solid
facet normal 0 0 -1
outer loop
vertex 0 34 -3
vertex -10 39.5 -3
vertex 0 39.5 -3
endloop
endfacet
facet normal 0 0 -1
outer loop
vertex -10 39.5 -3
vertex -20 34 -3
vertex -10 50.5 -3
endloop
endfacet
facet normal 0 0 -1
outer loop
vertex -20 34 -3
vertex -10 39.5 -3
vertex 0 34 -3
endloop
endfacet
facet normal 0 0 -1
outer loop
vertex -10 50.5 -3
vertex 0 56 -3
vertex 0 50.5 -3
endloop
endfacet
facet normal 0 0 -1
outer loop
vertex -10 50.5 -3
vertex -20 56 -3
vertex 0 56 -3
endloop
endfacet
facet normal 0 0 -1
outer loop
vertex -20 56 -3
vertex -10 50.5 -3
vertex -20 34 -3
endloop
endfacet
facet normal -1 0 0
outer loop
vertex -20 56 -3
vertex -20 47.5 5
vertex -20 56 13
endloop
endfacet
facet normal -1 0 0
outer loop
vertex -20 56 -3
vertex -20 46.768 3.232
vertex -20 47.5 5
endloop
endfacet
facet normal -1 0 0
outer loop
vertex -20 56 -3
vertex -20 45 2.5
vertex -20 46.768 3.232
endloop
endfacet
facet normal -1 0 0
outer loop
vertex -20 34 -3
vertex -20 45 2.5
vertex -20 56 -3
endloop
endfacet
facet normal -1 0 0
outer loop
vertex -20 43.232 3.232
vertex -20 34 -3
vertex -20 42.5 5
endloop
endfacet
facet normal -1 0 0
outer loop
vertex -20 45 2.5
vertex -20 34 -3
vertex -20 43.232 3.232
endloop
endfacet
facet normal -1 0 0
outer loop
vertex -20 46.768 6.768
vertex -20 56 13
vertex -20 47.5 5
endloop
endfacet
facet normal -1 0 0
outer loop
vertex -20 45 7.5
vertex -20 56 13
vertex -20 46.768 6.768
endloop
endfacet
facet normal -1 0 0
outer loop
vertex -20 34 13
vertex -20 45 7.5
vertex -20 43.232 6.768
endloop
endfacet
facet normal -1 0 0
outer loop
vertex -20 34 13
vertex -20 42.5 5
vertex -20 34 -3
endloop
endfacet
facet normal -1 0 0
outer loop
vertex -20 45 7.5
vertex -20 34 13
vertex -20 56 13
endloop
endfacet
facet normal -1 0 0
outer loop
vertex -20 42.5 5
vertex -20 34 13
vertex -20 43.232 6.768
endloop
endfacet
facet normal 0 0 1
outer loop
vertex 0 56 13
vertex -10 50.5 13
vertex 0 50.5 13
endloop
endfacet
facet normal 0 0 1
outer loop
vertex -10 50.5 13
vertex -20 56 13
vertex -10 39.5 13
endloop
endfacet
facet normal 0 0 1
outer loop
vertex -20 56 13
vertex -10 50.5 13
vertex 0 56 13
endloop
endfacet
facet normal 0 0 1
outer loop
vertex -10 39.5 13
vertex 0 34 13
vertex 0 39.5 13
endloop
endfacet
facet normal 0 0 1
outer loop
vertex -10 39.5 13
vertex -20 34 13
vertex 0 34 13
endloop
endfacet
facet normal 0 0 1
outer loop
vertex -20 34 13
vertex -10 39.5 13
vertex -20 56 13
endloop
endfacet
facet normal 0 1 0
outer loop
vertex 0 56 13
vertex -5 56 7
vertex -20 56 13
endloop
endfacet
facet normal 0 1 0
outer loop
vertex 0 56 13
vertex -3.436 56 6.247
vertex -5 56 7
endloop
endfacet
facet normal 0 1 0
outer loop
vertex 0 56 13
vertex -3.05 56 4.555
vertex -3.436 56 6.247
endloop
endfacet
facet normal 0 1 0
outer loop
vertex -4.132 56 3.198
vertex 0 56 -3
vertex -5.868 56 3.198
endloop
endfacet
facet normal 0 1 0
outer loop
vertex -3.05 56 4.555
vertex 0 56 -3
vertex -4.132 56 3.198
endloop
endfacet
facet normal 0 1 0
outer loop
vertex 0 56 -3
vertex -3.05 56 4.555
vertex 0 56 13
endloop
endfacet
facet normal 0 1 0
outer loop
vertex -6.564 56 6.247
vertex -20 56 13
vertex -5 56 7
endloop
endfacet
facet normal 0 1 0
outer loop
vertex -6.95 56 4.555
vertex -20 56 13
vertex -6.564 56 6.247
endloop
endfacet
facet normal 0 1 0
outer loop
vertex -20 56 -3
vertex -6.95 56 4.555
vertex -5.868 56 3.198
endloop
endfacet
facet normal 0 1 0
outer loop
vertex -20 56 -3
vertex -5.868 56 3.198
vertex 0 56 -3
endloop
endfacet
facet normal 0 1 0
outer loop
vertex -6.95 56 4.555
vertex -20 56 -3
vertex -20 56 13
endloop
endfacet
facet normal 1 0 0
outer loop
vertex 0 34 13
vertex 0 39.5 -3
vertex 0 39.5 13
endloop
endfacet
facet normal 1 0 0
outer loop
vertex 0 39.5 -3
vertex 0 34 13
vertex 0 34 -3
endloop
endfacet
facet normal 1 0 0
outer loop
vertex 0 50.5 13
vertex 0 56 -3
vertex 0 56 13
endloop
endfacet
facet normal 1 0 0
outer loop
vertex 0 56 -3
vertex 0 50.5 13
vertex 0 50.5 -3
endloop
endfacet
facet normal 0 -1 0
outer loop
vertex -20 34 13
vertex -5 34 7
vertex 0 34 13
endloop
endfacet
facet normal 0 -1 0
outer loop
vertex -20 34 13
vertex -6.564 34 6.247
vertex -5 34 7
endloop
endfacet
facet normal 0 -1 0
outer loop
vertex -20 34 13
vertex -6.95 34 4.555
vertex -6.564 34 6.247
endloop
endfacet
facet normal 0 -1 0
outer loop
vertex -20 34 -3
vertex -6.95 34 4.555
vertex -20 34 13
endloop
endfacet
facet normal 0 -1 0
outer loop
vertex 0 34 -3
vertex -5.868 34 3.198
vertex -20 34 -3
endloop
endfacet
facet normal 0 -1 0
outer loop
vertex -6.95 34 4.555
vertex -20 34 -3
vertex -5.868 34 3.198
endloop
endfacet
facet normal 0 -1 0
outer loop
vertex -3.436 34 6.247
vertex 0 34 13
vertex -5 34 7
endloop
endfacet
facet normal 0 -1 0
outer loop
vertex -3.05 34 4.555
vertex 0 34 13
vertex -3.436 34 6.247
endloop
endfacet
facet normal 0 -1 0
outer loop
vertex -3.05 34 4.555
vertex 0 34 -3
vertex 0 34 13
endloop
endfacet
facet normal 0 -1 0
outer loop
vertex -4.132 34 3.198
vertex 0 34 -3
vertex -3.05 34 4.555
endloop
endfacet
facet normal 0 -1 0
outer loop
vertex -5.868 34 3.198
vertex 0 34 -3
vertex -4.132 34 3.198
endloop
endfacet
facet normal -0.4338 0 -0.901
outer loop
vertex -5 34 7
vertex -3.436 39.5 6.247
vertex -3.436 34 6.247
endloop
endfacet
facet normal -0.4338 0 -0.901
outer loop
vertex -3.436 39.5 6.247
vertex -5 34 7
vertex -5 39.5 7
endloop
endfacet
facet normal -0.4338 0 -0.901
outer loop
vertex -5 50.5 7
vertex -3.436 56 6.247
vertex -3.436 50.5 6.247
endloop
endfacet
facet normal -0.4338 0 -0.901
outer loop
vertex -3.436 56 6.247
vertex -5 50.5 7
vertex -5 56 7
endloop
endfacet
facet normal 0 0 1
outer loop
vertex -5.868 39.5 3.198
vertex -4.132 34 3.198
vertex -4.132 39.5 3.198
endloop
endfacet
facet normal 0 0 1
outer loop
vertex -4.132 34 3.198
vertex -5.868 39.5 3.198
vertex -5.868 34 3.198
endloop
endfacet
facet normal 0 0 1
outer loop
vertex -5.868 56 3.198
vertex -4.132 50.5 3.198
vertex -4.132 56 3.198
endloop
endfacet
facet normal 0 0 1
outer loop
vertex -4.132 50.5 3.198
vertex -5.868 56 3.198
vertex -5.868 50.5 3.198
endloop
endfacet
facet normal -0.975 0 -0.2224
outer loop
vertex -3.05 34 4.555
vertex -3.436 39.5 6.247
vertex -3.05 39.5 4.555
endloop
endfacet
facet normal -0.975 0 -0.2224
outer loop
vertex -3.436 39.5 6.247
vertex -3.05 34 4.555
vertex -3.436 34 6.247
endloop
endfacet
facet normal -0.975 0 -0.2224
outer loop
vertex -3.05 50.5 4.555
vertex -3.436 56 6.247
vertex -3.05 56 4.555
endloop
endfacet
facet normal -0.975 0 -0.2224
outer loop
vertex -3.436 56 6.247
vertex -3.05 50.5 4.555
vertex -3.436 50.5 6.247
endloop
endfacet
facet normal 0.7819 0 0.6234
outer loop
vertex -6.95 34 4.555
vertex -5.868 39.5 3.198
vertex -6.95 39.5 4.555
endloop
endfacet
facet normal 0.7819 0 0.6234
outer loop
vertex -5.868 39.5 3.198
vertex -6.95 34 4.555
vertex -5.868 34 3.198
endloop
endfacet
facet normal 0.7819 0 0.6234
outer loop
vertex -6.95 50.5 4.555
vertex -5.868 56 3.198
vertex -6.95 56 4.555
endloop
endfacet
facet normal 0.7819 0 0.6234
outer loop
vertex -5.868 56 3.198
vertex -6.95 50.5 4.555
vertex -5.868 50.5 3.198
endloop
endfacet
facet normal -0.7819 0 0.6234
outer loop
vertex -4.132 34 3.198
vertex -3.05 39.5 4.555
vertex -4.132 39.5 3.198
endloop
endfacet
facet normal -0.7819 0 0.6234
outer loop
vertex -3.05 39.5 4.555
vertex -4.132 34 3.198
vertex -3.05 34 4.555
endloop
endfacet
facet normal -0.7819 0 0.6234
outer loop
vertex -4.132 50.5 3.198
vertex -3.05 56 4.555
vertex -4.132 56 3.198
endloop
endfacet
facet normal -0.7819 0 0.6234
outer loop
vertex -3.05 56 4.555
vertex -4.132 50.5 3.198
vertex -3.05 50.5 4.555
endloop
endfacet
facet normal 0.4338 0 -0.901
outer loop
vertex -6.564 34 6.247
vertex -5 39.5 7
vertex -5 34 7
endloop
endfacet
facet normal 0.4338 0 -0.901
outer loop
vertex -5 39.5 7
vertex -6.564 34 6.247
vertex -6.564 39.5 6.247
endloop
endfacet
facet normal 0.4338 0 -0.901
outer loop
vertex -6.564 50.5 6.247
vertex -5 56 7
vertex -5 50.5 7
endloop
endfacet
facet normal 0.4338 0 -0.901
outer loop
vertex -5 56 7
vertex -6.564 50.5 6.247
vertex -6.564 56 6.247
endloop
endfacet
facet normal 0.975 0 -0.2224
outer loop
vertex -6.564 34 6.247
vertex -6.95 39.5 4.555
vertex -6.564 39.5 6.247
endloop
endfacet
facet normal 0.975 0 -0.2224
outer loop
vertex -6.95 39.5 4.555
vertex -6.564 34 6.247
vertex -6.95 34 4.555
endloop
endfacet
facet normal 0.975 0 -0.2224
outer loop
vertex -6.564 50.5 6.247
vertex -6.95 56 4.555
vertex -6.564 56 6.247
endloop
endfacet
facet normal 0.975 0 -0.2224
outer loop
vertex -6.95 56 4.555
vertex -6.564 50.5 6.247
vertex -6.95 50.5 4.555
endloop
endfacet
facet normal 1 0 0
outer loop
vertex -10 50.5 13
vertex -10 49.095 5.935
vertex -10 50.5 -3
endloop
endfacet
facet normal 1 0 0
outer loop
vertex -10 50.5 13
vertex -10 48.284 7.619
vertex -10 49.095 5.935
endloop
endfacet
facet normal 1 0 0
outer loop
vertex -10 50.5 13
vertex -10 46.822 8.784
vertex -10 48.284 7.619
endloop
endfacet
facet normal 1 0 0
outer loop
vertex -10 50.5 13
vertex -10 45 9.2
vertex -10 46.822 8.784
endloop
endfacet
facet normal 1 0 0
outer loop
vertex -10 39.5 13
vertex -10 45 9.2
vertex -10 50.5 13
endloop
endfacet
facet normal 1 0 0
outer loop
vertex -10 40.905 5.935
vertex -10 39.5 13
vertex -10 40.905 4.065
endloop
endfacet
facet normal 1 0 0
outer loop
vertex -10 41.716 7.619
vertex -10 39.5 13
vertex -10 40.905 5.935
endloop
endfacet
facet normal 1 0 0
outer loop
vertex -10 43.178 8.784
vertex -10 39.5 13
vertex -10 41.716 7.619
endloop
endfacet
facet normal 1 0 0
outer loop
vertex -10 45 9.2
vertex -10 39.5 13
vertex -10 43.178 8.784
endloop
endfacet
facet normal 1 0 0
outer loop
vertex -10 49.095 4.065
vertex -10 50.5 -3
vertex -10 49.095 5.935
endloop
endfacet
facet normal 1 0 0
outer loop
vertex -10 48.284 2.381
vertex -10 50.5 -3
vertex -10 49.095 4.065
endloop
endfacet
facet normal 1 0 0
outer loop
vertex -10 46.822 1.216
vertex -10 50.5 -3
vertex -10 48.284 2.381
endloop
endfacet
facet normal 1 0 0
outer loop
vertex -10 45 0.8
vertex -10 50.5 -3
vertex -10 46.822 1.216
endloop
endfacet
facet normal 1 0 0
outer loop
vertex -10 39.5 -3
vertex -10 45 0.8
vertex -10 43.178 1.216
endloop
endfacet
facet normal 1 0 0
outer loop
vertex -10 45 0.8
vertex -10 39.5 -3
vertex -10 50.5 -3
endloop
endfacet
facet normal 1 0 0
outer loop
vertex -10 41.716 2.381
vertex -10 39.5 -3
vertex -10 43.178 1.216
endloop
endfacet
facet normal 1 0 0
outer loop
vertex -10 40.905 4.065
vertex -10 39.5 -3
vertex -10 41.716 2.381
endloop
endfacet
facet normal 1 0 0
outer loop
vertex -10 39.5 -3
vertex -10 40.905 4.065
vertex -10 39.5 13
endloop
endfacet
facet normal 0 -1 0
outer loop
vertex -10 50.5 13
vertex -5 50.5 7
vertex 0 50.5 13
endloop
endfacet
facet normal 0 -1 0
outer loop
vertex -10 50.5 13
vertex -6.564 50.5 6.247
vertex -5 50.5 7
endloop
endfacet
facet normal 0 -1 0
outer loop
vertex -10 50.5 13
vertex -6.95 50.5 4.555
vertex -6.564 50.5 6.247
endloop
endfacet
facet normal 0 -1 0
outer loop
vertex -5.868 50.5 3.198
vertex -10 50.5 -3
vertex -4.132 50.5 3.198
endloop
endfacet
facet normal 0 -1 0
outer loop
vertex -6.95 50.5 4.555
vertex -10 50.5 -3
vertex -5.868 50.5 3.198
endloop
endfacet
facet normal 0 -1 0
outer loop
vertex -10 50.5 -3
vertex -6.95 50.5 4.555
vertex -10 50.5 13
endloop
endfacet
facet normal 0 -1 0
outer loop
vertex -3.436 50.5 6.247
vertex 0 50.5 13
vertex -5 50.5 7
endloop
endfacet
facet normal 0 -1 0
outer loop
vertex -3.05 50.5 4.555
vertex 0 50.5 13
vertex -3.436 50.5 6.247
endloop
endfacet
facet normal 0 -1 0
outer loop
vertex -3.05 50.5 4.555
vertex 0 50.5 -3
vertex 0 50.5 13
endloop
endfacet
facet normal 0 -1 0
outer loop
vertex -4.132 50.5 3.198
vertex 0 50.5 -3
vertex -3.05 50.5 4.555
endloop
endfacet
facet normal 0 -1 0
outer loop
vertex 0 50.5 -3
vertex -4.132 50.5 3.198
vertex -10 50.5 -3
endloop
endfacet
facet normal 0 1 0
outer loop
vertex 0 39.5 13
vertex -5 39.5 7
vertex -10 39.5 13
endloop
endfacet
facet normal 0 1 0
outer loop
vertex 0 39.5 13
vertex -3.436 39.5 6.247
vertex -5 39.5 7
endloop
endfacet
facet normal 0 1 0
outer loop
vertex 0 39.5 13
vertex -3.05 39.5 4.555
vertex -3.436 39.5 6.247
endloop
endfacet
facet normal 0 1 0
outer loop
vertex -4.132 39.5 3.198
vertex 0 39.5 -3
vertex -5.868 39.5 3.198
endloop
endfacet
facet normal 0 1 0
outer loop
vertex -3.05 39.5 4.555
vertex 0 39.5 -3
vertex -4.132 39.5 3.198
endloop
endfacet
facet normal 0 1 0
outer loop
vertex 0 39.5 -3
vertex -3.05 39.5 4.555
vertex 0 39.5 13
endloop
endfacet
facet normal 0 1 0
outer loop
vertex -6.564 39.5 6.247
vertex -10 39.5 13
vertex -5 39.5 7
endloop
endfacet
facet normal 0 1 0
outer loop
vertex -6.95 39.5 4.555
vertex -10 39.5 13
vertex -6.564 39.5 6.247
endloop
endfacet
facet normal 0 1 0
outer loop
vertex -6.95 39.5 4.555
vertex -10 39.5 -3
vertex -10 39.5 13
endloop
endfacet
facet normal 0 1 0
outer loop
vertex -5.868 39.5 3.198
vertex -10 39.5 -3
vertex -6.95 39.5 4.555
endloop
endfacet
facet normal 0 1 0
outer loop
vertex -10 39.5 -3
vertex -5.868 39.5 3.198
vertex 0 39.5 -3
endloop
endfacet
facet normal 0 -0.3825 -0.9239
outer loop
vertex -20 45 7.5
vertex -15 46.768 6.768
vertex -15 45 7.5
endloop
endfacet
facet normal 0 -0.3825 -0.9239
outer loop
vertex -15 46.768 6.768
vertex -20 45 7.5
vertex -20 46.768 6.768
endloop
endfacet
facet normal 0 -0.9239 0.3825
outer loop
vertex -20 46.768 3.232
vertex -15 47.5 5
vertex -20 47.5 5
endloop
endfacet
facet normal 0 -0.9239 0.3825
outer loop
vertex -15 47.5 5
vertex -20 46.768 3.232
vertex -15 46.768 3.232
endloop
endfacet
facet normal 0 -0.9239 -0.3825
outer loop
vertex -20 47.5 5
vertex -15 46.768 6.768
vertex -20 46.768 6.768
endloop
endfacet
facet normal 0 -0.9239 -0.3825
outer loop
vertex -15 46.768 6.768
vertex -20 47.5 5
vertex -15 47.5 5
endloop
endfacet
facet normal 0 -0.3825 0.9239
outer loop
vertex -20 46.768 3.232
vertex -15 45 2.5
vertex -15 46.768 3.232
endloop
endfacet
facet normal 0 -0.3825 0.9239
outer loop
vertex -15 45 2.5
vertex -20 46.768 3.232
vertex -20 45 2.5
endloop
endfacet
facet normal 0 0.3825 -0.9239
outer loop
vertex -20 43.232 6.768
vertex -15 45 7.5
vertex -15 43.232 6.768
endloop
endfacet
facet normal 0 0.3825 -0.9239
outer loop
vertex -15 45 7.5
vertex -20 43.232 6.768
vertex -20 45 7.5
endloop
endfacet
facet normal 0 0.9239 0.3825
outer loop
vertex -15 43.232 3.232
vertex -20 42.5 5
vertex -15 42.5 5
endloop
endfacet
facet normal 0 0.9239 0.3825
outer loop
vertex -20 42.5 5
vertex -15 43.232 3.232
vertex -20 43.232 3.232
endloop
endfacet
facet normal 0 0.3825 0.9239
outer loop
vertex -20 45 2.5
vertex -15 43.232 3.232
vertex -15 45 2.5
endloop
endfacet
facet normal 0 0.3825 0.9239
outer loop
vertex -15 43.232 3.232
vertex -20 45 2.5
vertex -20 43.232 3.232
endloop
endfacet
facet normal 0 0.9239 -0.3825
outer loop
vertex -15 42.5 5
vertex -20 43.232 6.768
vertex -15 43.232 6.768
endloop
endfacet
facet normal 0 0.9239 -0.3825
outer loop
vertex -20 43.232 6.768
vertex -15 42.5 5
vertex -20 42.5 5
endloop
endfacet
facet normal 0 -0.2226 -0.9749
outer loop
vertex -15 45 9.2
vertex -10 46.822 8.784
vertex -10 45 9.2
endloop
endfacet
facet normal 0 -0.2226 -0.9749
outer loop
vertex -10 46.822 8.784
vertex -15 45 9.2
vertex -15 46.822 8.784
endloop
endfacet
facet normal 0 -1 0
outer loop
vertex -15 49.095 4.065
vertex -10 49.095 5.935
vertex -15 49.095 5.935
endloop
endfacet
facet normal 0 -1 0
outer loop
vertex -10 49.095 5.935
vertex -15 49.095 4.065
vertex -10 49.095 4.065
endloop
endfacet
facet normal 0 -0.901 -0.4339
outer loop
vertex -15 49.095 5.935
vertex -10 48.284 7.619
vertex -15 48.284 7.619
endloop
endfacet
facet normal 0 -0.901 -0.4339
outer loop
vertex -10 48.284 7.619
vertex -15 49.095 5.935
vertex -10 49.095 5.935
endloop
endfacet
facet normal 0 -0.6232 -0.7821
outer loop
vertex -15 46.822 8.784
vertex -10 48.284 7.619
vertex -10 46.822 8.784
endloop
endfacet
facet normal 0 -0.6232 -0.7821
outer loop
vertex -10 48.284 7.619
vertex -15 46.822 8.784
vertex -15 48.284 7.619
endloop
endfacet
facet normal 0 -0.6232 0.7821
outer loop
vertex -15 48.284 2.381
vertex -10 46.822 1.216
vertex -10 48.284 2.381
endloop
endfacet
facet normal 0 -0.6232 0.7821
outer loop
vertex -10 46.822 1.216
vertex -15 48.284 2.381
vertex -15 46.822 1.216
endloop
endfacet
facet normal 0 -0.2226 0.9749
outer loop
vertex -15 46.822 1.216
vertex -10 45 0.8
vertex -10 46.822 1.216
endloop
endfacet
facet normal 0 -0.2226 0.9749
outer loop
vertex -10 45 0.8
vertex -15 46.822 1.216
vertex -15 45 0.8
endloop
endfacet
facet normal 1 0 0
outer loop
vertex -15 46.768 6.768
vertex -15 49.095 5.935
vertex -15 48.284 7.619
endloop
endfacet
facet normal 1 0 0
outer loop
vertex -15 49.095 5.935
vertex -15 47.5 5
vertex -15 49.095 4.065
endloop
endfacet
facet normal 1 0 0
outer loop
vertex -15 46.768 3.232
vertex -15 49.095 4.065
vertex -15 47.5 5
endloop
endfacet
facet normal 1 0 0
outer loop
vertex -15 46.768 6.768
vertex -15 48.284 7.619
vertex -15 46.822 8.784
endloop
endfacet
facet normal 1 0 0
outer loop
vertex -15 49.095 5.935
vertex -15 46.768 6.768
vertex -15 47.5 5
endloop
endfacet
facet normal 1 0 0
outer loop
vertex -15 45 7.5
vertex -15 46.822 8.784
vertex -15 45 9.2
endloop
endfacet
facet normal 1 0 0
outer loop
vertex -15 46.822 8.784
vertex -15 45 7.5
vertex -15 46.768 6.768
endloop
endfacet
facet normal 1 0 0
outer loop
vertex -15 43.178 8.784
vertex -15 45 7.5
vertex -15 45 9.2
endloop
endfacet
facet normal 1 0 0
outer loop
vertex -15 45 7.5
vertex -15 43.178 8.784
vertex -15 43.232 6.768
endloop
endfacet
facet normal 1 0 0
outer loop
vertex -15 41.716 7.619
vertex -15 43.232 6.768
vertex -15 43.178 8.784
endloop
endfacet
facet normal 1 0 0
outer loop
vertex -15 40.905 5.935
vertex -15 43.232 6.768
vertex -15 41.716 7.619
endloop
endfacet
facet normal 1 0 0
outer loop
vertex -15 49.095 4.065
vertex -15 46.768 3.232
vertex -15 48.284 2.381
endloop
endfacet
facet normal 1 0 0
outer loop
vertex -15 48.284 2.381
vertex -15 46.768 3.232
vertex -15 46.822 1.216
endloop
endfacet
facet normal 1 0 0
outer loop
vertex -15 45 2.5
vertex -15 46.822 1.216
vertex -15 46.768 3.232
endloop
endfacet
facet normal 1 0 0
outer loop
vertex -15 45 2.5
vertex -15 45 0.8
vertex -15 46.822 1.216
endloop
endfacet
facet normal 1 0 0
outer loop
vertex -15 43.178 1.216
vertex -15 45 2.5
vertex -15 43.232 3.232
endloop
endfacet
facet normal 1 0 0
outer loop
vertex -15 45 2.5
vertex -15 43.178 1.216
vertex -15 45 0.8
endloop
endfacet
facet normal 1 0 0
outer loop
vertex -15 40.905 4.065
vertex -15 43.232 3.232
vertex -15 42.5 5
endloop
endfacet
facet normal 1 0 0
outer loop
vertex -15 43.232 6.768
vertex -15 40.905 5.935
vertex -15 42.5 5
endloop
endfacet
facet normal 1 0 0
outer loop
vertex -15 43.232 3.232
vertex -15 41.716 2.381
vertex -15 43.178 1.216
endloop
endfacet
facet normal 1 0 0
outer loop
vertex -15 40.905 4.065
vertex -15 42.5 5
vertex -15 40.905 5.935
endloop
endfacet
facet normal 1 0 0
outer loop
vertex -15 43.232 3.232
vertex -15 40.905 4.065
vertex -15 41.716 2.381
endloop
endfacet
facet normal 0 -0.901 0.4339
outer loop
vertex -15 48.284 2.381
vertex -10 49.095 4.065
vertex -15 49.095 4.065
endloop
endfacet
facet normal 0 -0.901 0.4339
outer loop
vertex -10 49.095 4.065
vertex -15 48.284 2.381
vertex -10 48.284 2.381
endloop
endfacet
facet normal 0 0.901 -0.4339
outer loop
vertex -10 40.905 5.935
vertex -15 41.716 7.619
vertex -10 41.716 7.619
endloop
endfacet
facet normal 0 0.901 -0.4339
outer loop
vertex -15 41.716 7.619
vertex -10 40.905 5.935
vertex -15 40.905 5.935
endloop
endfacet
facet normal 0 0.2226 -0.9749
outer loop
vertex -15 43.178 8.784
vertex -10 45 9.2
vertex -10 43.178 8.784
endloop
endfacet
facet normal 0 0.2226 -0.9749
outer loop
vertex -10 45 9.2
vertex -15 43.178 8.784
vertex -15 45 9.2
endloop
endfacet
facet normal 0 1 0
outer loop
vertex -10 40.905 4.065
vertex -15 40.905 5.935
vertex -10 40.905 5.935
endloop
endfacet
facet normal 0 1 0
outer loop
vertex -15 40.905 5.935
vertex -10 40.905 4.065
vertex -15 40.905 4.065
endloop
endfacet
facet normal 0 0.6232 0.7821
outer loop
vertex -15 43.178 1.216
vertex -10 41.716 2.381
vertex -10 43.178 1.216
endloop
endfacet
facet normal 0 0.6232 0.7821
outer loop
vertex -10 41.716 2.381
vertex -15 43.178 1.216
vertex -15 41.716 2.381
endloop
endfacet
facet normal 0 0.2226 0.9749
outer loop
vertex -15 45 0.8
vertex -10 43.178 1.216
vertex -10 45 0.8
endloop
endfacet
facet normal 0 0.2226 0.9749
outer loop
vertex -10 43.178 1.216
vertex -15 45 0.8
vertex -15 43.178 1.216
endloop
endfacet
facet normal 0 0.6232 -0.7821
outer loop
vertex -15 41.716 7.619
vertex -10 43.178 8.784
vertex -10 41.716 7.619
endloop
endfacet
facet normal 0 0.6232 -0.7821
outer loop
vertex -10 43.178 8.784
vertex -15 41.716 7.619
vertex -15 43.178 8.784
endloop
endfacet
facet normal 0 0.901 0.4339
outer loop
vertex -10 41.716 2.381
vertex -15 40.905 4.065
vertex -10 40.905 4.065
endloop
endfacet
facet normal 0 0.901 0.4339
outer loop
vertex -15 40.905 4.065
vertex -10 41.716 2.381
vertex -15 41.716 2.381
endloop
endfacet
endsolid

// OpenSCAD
/*
Erica Umlor Wire Following Sensor Holder for MSE4777

Created: 04/16/2020
Description: This is for my GrowBot project
for senior design. This is the bot end to the wire 
following sensor holders. This end connects to the 
frame of our robot. Don't try to edit this code.
Most of it is not parametric, and it should fit just
fine with this this project. 
*/

botEnd();

// values
holeL = 15;    // length of pin hole
holeR = 2;     // pin hole radius
brace = 4;     // width 
w = 10;        // height and length

module botEnd() {   
    translate([0,40,0]) {
      rotate([0,270,0]) {
        difference() {
          // bottom bracket
          translate([-3,-brace/2-4,0])
          cube([w+6,w+brace+8,w*2]);
    
          // bottom hole
          translate([w/2,-(holeL-10)/2-5,w/2])
          rotate([-90,0,0])
          cylinder(holeL+10,holeR,holeR);
       
          // bracket cutout
          translate([-4,-0.5,0])
          cube([w+8,w+1,w]);
        
          // middle hole
          translate([brace+1,w/2,0])
          cylinder(holeL*2,3-.5,3-.5);
        
          translate([brace+1,w/2,-3])
          cylinder(holeL+3,3+1.2,3+1.2);
        }
      }
    }
}
